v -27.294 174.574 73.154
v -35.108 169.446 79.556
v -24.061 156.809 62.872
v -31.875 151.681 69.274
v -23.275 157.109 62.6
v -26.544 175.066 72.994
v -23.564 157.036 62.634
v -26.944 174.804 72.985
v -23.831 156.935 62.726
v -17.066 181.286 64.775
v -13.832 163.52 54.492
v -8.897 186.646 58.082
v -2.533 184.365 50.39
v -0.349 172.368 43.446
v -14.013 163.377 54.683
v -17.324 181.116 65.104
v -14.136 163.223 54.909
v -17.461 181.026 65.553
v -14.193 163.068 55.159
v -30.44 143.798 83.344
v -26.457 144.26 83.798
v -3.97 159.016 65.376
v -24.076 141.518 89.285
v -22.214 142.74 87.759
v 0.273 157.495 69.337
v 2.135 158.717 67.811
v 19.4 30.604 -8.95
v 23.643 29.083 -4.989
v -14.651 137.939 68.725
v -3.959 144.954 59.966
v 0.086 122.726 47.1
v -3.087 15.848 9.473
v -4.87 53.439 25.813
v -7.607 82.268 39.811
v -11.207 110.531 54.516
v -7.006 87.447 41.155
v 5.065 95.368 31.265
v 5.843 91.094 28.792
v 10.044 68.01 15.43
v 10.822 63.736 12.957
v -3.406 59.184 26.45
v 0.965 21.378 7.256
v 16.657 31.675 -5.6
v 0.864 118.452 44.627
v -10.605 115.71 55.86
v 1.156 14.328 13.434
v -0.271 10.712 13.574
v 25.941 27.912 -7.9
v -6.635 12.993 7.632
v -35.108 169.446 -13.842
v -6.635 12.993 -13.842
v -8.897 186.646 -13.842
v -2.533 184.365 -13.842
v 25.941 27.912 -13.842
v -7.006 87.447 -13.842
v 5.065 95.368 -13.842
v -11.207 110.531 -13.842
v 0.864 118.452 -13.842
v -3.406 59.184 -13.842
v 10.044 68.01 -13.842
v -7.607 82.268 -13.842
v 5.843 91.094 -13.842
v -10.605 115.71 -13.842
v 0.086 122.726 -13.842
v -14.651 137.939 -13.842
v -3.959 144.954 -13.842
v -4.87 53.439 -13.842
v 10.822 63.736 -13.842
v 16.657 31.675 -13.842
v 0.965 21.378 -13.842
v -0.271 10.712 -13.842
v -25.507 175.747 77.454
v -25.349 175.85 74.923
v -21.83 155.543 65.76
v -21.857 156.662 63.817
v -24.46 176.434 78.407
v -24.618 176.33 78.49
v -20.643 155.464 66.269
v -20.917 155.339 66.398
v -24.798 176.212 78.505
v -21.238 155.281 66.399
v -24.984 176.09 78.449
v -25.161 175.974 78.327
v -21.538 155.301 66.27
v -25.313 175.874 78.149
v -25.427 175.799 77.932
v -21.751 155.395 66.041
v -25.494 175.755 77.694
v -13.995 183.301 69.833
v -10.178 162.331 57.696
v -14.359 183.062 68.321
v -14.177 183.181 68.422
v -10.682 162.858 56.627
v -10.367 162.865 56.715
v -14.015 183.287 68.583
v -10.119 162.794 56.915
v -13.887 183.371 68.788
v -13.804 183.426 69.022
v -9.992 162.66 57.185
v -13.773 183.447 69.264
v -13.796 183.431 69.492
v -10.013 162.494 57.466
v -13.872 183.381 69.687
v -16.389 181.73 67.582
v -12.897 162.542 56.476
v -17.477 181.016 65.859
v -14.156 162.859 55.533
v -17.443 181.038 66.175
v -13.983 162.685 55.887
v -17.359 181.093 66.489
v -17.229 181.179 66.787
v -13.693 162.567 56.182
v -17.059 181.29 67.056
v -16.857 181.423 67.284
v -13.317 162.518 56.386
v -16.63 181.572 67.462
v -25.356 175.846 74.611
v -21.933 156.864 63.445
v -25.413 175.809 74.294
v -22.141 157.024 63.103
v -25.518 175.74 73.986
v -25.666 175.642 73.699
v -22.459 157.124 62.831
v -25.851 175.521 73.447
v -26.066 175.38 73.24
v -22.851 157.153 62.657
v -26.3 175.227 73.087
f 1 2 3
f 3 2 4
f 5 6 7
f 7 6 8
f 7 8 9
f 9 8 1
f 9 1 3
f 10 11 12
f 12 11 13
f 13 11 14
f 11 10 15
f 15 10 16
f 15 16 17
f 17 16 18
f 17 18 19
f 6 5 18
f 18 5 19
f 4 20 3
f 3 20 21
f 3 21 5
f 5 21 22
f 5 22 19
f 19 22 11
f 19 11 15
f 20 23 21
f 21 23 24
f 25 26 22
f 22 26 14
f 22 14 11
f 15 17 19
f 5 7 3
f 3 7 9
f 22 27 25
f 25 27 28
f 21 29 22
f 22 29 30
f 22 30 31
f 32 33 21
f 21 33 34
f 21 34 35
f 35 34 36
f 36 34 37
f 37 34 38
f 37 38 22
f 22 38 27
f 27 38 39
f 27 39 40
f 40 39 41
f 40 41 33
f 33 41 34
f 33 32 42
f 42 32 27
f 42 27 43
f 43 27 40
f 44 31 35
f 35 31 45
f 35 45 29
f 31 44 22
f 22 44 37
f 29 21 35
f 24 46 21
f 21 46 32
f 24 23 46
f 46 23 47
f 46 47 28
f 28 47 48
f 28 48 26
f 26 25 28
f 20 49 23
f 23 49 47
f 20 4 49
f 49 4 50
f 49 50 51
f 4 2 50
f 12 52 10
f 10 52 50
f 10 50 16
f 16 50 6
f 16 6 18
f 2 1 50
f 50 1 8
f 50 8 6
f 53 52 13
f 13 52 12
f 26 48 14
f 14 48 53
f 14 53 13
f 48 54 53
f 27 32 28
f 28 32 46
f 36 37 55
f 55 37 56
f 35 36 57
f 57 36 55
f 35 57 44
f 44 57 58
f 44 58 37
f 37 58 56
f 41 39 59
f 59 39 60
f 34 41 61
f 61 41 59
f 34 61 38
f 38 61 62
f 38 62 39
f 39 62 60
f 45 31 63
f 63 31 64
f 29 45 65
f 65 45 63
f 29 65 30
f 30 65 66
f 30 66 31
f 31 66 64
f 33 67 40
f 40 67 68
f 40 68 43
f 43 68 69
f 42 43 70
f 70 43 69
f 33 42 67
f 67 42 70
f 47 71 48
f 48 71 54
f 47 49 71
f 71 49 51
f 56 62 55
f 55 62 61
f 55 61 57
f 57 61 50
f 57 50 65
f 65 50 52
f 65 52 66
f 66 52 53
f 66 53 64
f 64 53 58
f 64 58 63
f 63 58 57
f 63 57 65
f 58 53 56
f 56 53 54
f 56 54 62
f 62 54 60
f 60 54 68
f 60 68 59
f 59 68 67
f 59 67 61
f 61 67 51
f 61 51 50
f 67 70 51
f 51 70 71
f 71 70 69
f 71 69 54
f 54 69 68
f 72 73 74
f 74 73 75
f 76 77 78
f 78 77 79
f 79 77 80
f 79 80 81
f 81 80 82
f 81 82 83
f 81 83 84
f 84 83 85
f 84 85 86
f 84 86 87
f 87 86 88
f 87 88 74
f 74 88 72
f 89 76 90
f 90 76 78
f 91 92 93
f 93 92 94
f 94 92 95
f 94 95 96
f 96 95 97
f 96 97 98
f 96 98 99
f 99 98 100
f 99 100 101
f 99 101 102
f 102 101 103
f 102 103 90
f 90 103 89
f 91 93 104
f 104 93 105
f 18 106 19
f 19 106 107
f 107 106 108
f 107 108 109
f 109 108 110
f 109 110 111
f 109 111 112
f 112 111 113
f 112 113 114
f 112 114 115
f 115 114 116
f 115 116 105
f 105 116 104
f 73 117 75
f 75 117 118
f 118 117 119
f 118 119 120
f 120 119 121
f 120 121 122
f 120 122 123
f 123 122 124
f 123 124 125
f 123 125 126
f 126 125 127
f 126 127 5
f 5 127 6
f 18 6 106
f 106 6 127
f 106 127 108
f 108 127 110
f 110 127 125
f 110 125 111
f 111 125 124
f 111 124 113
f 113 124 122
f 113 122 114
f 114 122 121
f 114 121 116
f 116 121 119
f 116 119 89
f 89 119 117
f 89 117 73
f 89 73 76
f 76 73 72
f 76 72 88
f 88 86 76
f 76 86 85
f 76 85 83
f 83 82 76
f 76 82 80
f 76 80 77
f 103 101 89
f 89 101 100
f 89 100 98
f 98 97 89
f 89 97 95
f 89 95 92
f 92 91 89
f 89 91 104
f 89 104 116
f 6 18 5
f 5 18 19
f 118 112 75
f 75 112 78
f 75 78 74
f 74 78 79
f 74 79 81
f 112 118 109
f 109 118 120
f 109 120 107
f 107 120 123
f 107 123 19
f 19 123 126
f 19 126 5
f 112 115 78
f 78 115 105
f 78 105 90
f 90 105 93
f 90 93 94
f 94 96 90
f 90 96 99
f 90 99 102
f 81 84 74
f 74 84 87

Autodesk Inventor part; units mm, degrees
sketch3d "3D Sketch1"
ref_plane "Work Plane1" through (-0.0056, 14.7303, 11.9873) normal (-1, 0, 0) x (0, 0, -1)
ref_plane "Work Plane2" through (-2.9108, 16.1551, 9.4021) normal (-0.7071068, 0.2534044, -0.6601411) x (0.1555934, -0.854939, -0.4948434)
sketch "Sketch2" plane through (-2.9108, 16.1551, 9.4021) normal (-0.7071068, 0.2534044, -0.6601411) x (0.1555934, -0.854939, -0.4948434)
  line L0 (-180, 0) -> (0, 0)
  line L1 (0, 0) -> (0, -32)
  line L2 (0, -32) -> (-180, -32)
  line L3 (-180, -32) -> (-180, 0)
  line L4 (3, -35) -> (-180, -35)
  line L5 (-180, -35) -> (-180, 3)
  line L6 (-180, 3) -> (3, 3)
  line L7 (3, 3) -> (3, -35)
  line L8 (-180, 0.3) -> (0.2, 0.3)
  line L9 (0.2, 0.3) -> (0.2, -32.3)
  line L10 (0.2, -32.3) -> (-180, -32.3)
  line L11 (-180, -32.3) -> (-180, 0.3)
  point P0 (-180, 0)
  dimension "d1" = 180
  dimension "d2" = 32
  dimension "d5" = 3
  dimension "d6" = 3
  dimension "d7" = 3
  dimension "d13" = 0.2
  dimension "d14" = 0.3
  dimension "d15" = 0.3
extrude "Extrusion1" add sketch "Sketch2" along normal blind 3
extrude "Extrusion3" add sketch "Sketch2" against normal blind 6 contours L5 L6 L7 L4 L10 L9 L8
ref_plane "Work Plane3" through (19.5768, 30.1922, -13.8415) normal (0, 0, 1) x (1, 0, 0)
sketch "Sketch4" plane through (-3.0866, 15.8483, 9.4727) normal (-0.1555934, 0.854939, 0.4948434) x (0.7071068, -0.2534044, 0.6601411)
  line L0 (0, 0) -> (0, 32.6) projected
  line L1 (0, 0) -> (6, 0) projected
  line L2 (6, 32.6) -> (6, 0) projected
  line L3 (0, 32.6) -> (6, 32.6) projected
  line L4 (5, 32.6) -> (6, 32.0226)
  point P0 (-0.0547, 0.3088)
  dimension "d18" = 5
  dimension "d20" = 30
extrude "Extrusion4" [suppressed]
sketch "Sketch5" plane through (19.5768, 30.1922, -13.8415) normal (0, 0, 1) x (1, 0, 0)
  line L0 (-26.2115, -17.1996) -> (-54.6851, 139.2543) projected
  line L1 (-19.8475, -19.4802) -> (-26.2115, -17.1996) projected
  line L2 (-19.8475, -19.4802) -> (6.364, -2.2806) projected
  line L3 (6.364, -2.2806) -> (-22.1096, 154.1732) projected
  line L4 (-54.6851, 139.2543) -> (-28.4736, 156.4538) projected
  line L5 (-28.4736, 156.4538) -> (-22.1096, 154.1732) projected
  point P0 (-19.5768, -30.1922)
extrude "Extrusion5" add sketch "Sketch5" along normal up to next
sketch "Sketch6" plane through (-2.9108, 16.1551, 9.4021) normal (0.7071068, -0.2534044, 0.6601411) x (0.6897758, 0.4526207, -0.5651051)
  line L0 (13.5, 135.3) -> (29, 135.3)
  line L1 (13.5, 109.3) -> (13.5, 135.3)
  line L2 (11.5, 109.3) -> (13.5, 109.3)
  line L3 (11.5, 77.3) -> (11.5, 109.3)
  line L4 (9.5, 77.3) -> (11.5, 77.3)
  line L5 (9.5, 45.3) -> (9.5, 77.3)
  line L6 (6.25, 45.3) -> (9.5, 45.3)
  line L7 (6.25, 2.8) -> (6.25, 45.3)
  line L8 (29, 2.8) -> (6.25, 2.8)
  line L9 (29, 135.3) -> (29, 2.8)
  line L10 (32, 0) -> (32, 180) projected
  line L11 (0, 0) -> (32, 0) projected
  line L12 (32.3, 180) -> (32.3, -0.2) projected
  line L13 (32.3, -0.2) -> (29, -0.2)
  line L14 (29, -0.2) -> (29, 2.8)
  line L15 (29, 2.8) -> (32.3, 2.8)
  line L16 (32.3, 2.8) -> (32.3, -0.2)
  point P0 (0.0088, -18.9171)
  dimension "d25" = 3
  dimension "d26" = 3.3
sketch "Sketch8" plane through (19.5768, 30.1922, -13.8415) normal (0, 0, -1) x (-1, 0, 0)
  line L0 (0.1767, 0.4115) -> (28.2147, 154.4716) projected
  line L1 (50.7014, 139.7161) -> (28.2147, 154.4716) projected
  line L2 (50.7014, 139.7161) -> (22.6634, -14.3439) projected
  line L3 (22.6634, -14.3439) -> (0.1767, 0.4115) projected
  line L4 (18.6122, -8.8144) -> (25.2249, 27.5205) projected
  line L5 (2.9198, 1.4827) -> (18.6122, -8.8144) projected
  line L6 (23.5359, 114.7621) -> (2.9198, 1.4827) projected
  line L7 (25.2249, 27.5205) -> (22.9831, 28.9915) projected
  line L8 (22.9831, 28.9915) -> (27.9621, 56.3496) projected
  line L9 (26.5826, 57.2548) -> (31.5615, 84.6129) projected
  line L10 (27.9621, 56.3496) -> (26.5826, 57.2548) projected
  line L11 (30.182, 85.5181) -> (34.2274, 107.7465) projected
  line L12 (31.5615, 84.6129) -> (30.182, 85.5181) projected
  line L13 (34.2274, 107.7465) -> (23.5359, 114.7621) projected
  line L14 (26.6416, 26.5909) -> (9.5325, 37.8176)
  line L15 (9.5325, 37.8176) -> (7.338, 34.4733)
  line L16 (7.338, 34.4733) -> (24.4471, 23.2466)
  line L17 (24.4471, 23.2466) -> (26.6416, 26.5909)
  line L18 (29.3788, 55.42) -> (27.1843, 52.0757)
  line L19 (27.1843, 52.0757) -> (12.317, 61.8314)
  line L20 (12.317, 61.8314) -> (14.5115, 65.1757)
  line L21 (14.5115, 65.1757) -> (29.3788, 55.42)
  line L22 (32.9782, 83.6833) -> (30.7837, 80.339)
  line L23 (30.7837, 80.339) -> (17.296, 89.1894)
  line L24 (17.296, 89.1894) -> (19.4905, 92.5337)
  line L25 (19.4905, 92.5337) -> (32.9782, 83.6833)
  point P0 (19.5768, -30.1922)
  point P1 (18.7127, 88.2598)
  point P2 (13.7337, 60.9018)
  point P3 (8.7547, 33.5437)
  dimension "d27" = 4
  dimension "d28" = 4
  dimension "d29" = 4
extrude "Extrusion6" cut sketch "Sketch8" against normal through all contours L5 L6 L16 L4 | L14 L6 L19 L8 | L6 L23 L9 L21 | L6 L13 L11 L25
ref_plane "Work Plane4" through (-13.5174, 19.9562, -0.5) normal (0.7071068, -0.2534044, 0.6601411) x (0.6897758, 0.4526207, -0.5651051)
ref_plane "Work Plane6" through (-26.4567, 144.2602, 83.7981) normal (-0.1555934, 0.854939, 0.4948434) x (0.7071068, -0.2534044, 0.6601411)
split body "Split1" result two bodies by plane through (-26.4567, 144.2602, 83.7981) normal (-0.1555934, 0.854939, 0.4948434) first body at (-13.9482, 171.37, 41.9041)
split body "Split2" result two bodies by plane through (-13.5174, 19.9562, -0.5) normal (0.7071068, -0.2534044, 0.6601411) bodies 2 first body at (-22.4266, 166.4041, 87.2241)
sketch "Sketch9" plane through (-26.4567, 144.2602, 83.7981) normal (-0.1555934, 0.854939, 0.4948434) x (0.7071068, -0.2534044, 0.6601411)
  line L0 (-15, 7.5724) -> (-15, 45.5724) projected
  line L1 (-13.2929, 19.8653) -> (-11.7071, 18.2796)
  line L2 (-10, 18.9867) -> (-10, 34.1582)
  line L3 (-11.7071, 34.8653) -> (-13.2929, 33.2796)
  arc A0 (-11.7071, 18.2796) -> (-10, 18.9867) centre (-11, 18.9867) ccw
  arc A1 (-10, 34.1582) -> (-11.7071, 34.8653) centre (-11, 34.1582) ccw
  line L4 (-15, 7.5724) -> (-15, 45.5724) projected
  line L5 (-15, 7.5724) -> (-3, -2.7) projected
  line L6 (-3, -2.7) -> (-3, 35.3) projected
  line L7 (-15, 45.5724) -> (-3, 35.3) projected
  line L8 (-15, 45.5724) -> (-15, 53.2768) projected
  line L9 (-15, 45.5724) -> (-3, 35.3) projected
  line L10 (-3, 35.3) -> (6, 35.3) projected
  line L11 (-15, 53.2768) -> (6, 35.3) projected
  line L12 (0, 0) -> (0, 32.6) projected
  line L13 (0, 32.6) -> (6, 32.6) projected
  line L14 (6, 35.3) -> (6, 32.6) projected
  line L15 (-3, 35.3) -> (6, 35.3) projected
  line L16 (-3, -2.7) -> (-3, 35.3) projected
  line L17 (6, -2.7) -> (-3, -2.7) projected
  line L18 (6, 0) -> (6, -2.7) projected
  line L19 (0, 0) -> (6, 0) projected
  line L20 (-15, 45.5724) -> (-15, 53.2768) projected
  line L21 (-34.0212, 69.5596) -> (-15, 53.2768) projected
  line L22 (-15, 33.9867) -> (-15, 53.2768)
  line L23 (-15, 19.1582) -> (-15, 7.5724)
  arc A2 (-13.2929, 19.8653) -> (-15, 19.1582) centre (-14, 19.1582) ccw
  arc A3 (-15, 33.9867) -> (-13.2929, 33.2796) centre (-14, 33.9867) ccw
  line L24 (-15.3, 53.5336) -> (-15.3, 33.9867)
  arc A4 (-15.3, 33.9867) -> (-13.0808, 33.0674) centre (-14, 33.9867) ccw
  line L25 (-13.0808, 33.0674) -> (-11.495, 34.6532)
  arc A5 (-10.3, 34.1582) -> (-11.495, 34.6532) centre (-11, 34.1582) ccw
  line L26 (-10.3, 34.1582) -> (-10.3, 18.9867)
  arc A6 (-11.495, 18.4917) -> (-10.3, 18.9867) centre (-11, 18.9867) ccw
  line L27 (-11.495, 18.4917) -> (-13.0808, 20.0775)
  arc A7 (-13.0808, 20.0775) -> (-15.3, 19.1582) centre (-14, 19.1582) ccw
  line L28 (-15.3, 19.1582) -> (-15.3, 7.8293)
  line L29 (-43.0212, 31.5596) -> (-15, 7.5724) projected
  point P0 (-0.0547, 0.3088)
  point P1 (-15, 21.5724)
  point P2 (-10, 16.5724)
  point P3 (-10, 36.5724)
  point P4 (-15, 31.5724)
  point P5 (-15, 33.9867)
  point P6 (-15, 45.5724)
  point P7 (-15, 33.156)
  point P8 (-15, 19.9889)
  dimension "d35" = 45
  dimension "d36" = 45
  dimension "d37" = 20
  dimension "d38" = 5
  dimension "d40" = 10
  dimension "d41" = 38
  dimension "d42" = 14
  dimension "d47" = 1
  dimension "d48" = 1
  dimension "d49" = 0.3
extrude "Extrusion7" cut sketch "Sketch9" along normal through all contours L29 L28 A7 L0 | L0 A7 L27 A6 L26 A5 L25 A4 A3 L3 A1 L2 A0 L1 A2 | A4 L24 L21 L8 L0 bodies 4 5
sketch "Sketch11" plane through (-26.4567, 144.2602, 83.7981) normal (-0.1555934, 0.854939, 0.4948434) x (0.7071068, -0.2534044, 0.6601411)
  line L0 (34.4958, 0.0029) -> (24.2403, 8.7821)
  line L1 (24.2403, 8.7821) -> (25.6343, 10.4105)
  line L2 (25.6343, 10.4105) -> (35.8898, 1.6314)
  line L3 (35.8898, 1.6314) -> (34.4958, 0.0029)
  line L4 (32.5449, -2.2761) -> (29.886, 0)
  line L5 (29.886, 0) -> (27.5747, -2.7)
  line L6 (27.5747, -2.7) -> (30.2336, -4.9761)
  line L7 (30.2336, -4.9761) -> (32.5449, -2.2761)
  line L8 (34.4958, 0.0029) -> (32.5449, -2.2761)
  line L9 (-11.495, 18.4917) -> (-13.0808, 20.0775) projected
  arc A0 (-15, 19.9889) -> (-15.3, 19.1582) centre (-14, 19.1582) ccw projected
  line L10 (-15, 33.156) -> (-15, 19.9889) projected
  arc A1 (-15.3, 33.9867) -> (-15, 33.156) centre (-14, 33.9867) ccw projected
  line L11 (-13.0808, 33.0674) -> (-11.495, 34.6532) projected
  arc A2 (-10.3, 34.1582) -> (-11.495, 34.6532) centre (-11, 34.1582) ccw projected
  line L12 (-10.3, 34.1582) -> (-10.3, 18.9867) projected
  arc A3 (-11.495, 18.4917) -> (-10.3, 18.9867) centre (-11, 18.9867) ccw projected
  line L13 (6, -2.7) -> (-3, -2.7) projected
  line L14 (-3, -2.7) -> (-43.0212, 31.5596) projected
  line L15 (-15, 7.5724) -> (-15, 19.1582) projected
  arc A4 (-13.2929, 19.8653) -> (-15, 19.1582) centre (-14, 19.1582) ccw projected
  line L16 (-13.2929, 19.8653) -> (-11.7071, 18.2796) projected
  arc A5 (-11.7071, 18.2796) -> (-10, 18.9867) centre (-11, 18.9867) ccw projected
  line L17 (-10, 18.9867) -> (-10, 34.1582) projected
  arc A6 (-10, 34.1582) -> (-11.7071, 34.8653) centre (-11, 34.1582) ccw projected
  line L18 (-11.7071, 34.8653) -> (-13.2929, 33.2796) projected
  arc A7 (-15, 33.9867) -> (-13.2929, 33.2796) centre (-14, 33.9867) ccw projected
  line L19 (-15, 33.9867) -> (-15, 53.2768) projected
  line L20 (-34.0212, 69.5596) -> (6, 35.3) projected
  line L21 (6, 35.3) -> (6, 32.6) projected
  line L22 (6, 32.6) -> (0, 32.6) projected
  line L23 (0, 32.6) -> (0, 0) projected
  line L24 (0, 0) -> (6, 0) projected
  line L25 (6, 0) -> (6, -2.7) projected
  line L26 (-15.3, 19.1582) -> (-15.3, 7.8293) projected
  line L27 (-15.3, 53.5336) -> (-15.3, 33.9867) projected
  line L28 (-3, 35.3) -> (6, 35.3) projected
  line L29 (0, 32.6) -> (6, 32.6) projected
  line L30 (0, 0) -> (0, 32.6) projected
  line L31 (-3, -2.7) -> (-3, 35.3) projected
  line L32 (6, 35.3) -> (6, 32.6) projected
  line L33 (6, -2.7) -> (-3, -2.7) projected
  line L34 (6, 0) -> (6, -2.7) projected
  line L35 (0, 0) -> (6, 0) projected
  line L36 (6, 35.3) -> (6, 32.6) projected
  line L37 (-15.3, 53.5336) -> (6, 35.3) projected
  line L38 (-15, 53.2768) -> (6, 35.3) projected
  line L39 (24.2403, 8.7821) -> (25.905, 10.057)
  line L40 (25.905, 10.057) -> (7.6648, 33.8749)
  line L41 (7.6648, 33.8749) -> (6, 32.6)
  line L42 (6, 32.6) -> (24.2403, 8.7821)
  line L43 (6, 35.3) -> (7.6648, 33.8749)
  line L44 (6, -2.7) -> (27.5747, -2.7)
  line L45 (6, 0) -> (29.886, 0)
  line L46 (24.2403, 8.7821) -> (6, 24.3964) construction
  line L47 (6, 32.6) -> (6, 0) construction
  line L48 (6, 35.3) -> (6, 32.6)
  line L49 (6, 0) -> (6, -2.7) projected
  line L50 (6, 0) -> (6, -2.7)
  line L51 (6, 35.3) -> (6, 32.6) projected
  arc A8 (-13.0808, 20.0775) -> (-15, 19.9889) centre (-14, 19.1582) ccw projected
  arc A9 (-15, 33.156) -> (-13.0808, 33.0674) centre (-14, 33.9867) ccw projected
  line L52 (-15.3, 7.8293) -> (-43.0212, 31.5596) projected
  line L53 (-34.0212, 69.5596) -> (-15.3, 53.5336) projected
  line L54 (-43.0212, 31.5596) -> (-43.0212, 69.5596) projected
  line L55 (-43.0212, 69.5596) -> (-34.0212, 69.5596) projected
  point P0 (-0.0547, 0.3088)
  dimension "d63" = 3
  dimension "d64" = 3.5
  dimension "d65" = 13.5
  dimension "d66" = 30
  dimension "d67" = 24.0107
extrude "Extrusion8" add sketch "Sketch11" along normal up to surface (30 mm away) contours L0 L39 L40 L2 L3 | L42 L41 L40 L1 | L1 L40 L39 | L7 L6 L5 L4 | L21 L43 L41 | L5 L44 L25 L45 bodies 4
sketch "Sketch12" plane through (-3.97, 159.0156, 65.3757) normal (0.1555934, -0.854939, -0.4948434) x (0.7071068, -0.2534044, 0.6601411)
  arc A0 (-15, 13.4418) -> (-13.2929, 12.7347) centre (-14, 13.4418) ccw projected
  line L0 (-13.2929, 12.7347) -> (-11.7071, 14.3204) projected
  arc A1 (-10, 13.6133) -> (-11.7071, 14.3204) centre (-11, 13.6133) ccw projected
  line L1 (-10, 13.6133) -> (-10, -1.5582) projected
  arc A2 (-11.7071, -2.2653) -> (-10, -1.5582) centre (-11, -1.5582) ccw projected
  line L2 (-11.7071, -2.2653) -> (-13.2929, -0.6796) projected
  arc A3 (-13.2929, -0.6796) -> (-15, -1.3867) centre (-14, -1.3867) ccw projected
  line L3 (-15, -20.6768) -> (-15, -1.3867) projected
  line L4 (-15, -20.6768) -> (7.6648, -1.2749) projected
  line L5 (25.6343, 22.1895) -> (7.6648, -1.2749) projected
  line L6 (35.8898, 30.9686) -> (25.6343, 22.1895) projected
  line L7 (34.4958, 32.5971) -> (35.8898, 30.9686) projected
  line L8 (24.2403, 23.8179) -> (34.4958, 32.5971) projected
  line L9 (6, 0) -> (24.2403, 23.8179) projected
  line L10 (6, 0) -> (0, 0) projected
  line L11 (0, 0) -> (0, 32.6) projected
  line L12 (0, 32.6) -> (29.886, 32.6) projected
  line L13 (32.5449, 34.8761) -> (29.886, 32.6) projected
  line L14 (30.2336, 37.5761) -> (32.5449, 34.8761) projected
  line L15 (27.5747, 35.3) -> (30.2336, 37.5761) projected
  line L16 (27.5747, 35.3) -> (-3, 35.3) projected
  line L17 (-3, 35.3) -> (-15, 25.0276) projected
  line L18 (-15, 13.4418) -> (-15, 25.0276) projected
  line L19 (30.2336, 37.5761) -> (35.8898, 30.9686)
  line L20 (6, 0) -> (6, 32.6)
  point P0 (-0.0547, 32.2912)
  point P1 (34.4958, 32.5971)
  point P2 (32.5449, 34.8761)
  point P3 (34.4958, 32.5971)
  point P4 (32.5449, 34.8761)
extrude "Extrusion9" add sketch "Sketch12" against normal blind 3 contours L19 L8 L9 L20 L12 L13 bodies 4
combine bodies "Combine2" operation type add bodies to combine 5 3
fillet "Fillet1" radius 1.5 7 edges at (-7.3283, 164.4545, 115.5483) (-9.8368, 161.4831, 119.8932) (-20.5582, 166.1217, 108.508) (-7.8914, 150.7934, 111.6921) (-5.8259, 156.199, 103.0022) (-6.1608, 175.442, 96.9323) (-11.4375, 152.6823, 80.0323)
delete faces "Delete Face1" heal no whole lump yes faces at (-7.5891, 154.4464, 77.9282)
equation "\"d15\" = d14"
equation "\"d28\" = d27"
equation "\"d29\" = d28"
equation "\"d42\" = -0.5 * d40 + 0.5 * d41"
equation "\"d49\" = doveTailTolerance"
equation "\"doveTailTolerance\" = 0.3"
properties part number "sledHolder"
